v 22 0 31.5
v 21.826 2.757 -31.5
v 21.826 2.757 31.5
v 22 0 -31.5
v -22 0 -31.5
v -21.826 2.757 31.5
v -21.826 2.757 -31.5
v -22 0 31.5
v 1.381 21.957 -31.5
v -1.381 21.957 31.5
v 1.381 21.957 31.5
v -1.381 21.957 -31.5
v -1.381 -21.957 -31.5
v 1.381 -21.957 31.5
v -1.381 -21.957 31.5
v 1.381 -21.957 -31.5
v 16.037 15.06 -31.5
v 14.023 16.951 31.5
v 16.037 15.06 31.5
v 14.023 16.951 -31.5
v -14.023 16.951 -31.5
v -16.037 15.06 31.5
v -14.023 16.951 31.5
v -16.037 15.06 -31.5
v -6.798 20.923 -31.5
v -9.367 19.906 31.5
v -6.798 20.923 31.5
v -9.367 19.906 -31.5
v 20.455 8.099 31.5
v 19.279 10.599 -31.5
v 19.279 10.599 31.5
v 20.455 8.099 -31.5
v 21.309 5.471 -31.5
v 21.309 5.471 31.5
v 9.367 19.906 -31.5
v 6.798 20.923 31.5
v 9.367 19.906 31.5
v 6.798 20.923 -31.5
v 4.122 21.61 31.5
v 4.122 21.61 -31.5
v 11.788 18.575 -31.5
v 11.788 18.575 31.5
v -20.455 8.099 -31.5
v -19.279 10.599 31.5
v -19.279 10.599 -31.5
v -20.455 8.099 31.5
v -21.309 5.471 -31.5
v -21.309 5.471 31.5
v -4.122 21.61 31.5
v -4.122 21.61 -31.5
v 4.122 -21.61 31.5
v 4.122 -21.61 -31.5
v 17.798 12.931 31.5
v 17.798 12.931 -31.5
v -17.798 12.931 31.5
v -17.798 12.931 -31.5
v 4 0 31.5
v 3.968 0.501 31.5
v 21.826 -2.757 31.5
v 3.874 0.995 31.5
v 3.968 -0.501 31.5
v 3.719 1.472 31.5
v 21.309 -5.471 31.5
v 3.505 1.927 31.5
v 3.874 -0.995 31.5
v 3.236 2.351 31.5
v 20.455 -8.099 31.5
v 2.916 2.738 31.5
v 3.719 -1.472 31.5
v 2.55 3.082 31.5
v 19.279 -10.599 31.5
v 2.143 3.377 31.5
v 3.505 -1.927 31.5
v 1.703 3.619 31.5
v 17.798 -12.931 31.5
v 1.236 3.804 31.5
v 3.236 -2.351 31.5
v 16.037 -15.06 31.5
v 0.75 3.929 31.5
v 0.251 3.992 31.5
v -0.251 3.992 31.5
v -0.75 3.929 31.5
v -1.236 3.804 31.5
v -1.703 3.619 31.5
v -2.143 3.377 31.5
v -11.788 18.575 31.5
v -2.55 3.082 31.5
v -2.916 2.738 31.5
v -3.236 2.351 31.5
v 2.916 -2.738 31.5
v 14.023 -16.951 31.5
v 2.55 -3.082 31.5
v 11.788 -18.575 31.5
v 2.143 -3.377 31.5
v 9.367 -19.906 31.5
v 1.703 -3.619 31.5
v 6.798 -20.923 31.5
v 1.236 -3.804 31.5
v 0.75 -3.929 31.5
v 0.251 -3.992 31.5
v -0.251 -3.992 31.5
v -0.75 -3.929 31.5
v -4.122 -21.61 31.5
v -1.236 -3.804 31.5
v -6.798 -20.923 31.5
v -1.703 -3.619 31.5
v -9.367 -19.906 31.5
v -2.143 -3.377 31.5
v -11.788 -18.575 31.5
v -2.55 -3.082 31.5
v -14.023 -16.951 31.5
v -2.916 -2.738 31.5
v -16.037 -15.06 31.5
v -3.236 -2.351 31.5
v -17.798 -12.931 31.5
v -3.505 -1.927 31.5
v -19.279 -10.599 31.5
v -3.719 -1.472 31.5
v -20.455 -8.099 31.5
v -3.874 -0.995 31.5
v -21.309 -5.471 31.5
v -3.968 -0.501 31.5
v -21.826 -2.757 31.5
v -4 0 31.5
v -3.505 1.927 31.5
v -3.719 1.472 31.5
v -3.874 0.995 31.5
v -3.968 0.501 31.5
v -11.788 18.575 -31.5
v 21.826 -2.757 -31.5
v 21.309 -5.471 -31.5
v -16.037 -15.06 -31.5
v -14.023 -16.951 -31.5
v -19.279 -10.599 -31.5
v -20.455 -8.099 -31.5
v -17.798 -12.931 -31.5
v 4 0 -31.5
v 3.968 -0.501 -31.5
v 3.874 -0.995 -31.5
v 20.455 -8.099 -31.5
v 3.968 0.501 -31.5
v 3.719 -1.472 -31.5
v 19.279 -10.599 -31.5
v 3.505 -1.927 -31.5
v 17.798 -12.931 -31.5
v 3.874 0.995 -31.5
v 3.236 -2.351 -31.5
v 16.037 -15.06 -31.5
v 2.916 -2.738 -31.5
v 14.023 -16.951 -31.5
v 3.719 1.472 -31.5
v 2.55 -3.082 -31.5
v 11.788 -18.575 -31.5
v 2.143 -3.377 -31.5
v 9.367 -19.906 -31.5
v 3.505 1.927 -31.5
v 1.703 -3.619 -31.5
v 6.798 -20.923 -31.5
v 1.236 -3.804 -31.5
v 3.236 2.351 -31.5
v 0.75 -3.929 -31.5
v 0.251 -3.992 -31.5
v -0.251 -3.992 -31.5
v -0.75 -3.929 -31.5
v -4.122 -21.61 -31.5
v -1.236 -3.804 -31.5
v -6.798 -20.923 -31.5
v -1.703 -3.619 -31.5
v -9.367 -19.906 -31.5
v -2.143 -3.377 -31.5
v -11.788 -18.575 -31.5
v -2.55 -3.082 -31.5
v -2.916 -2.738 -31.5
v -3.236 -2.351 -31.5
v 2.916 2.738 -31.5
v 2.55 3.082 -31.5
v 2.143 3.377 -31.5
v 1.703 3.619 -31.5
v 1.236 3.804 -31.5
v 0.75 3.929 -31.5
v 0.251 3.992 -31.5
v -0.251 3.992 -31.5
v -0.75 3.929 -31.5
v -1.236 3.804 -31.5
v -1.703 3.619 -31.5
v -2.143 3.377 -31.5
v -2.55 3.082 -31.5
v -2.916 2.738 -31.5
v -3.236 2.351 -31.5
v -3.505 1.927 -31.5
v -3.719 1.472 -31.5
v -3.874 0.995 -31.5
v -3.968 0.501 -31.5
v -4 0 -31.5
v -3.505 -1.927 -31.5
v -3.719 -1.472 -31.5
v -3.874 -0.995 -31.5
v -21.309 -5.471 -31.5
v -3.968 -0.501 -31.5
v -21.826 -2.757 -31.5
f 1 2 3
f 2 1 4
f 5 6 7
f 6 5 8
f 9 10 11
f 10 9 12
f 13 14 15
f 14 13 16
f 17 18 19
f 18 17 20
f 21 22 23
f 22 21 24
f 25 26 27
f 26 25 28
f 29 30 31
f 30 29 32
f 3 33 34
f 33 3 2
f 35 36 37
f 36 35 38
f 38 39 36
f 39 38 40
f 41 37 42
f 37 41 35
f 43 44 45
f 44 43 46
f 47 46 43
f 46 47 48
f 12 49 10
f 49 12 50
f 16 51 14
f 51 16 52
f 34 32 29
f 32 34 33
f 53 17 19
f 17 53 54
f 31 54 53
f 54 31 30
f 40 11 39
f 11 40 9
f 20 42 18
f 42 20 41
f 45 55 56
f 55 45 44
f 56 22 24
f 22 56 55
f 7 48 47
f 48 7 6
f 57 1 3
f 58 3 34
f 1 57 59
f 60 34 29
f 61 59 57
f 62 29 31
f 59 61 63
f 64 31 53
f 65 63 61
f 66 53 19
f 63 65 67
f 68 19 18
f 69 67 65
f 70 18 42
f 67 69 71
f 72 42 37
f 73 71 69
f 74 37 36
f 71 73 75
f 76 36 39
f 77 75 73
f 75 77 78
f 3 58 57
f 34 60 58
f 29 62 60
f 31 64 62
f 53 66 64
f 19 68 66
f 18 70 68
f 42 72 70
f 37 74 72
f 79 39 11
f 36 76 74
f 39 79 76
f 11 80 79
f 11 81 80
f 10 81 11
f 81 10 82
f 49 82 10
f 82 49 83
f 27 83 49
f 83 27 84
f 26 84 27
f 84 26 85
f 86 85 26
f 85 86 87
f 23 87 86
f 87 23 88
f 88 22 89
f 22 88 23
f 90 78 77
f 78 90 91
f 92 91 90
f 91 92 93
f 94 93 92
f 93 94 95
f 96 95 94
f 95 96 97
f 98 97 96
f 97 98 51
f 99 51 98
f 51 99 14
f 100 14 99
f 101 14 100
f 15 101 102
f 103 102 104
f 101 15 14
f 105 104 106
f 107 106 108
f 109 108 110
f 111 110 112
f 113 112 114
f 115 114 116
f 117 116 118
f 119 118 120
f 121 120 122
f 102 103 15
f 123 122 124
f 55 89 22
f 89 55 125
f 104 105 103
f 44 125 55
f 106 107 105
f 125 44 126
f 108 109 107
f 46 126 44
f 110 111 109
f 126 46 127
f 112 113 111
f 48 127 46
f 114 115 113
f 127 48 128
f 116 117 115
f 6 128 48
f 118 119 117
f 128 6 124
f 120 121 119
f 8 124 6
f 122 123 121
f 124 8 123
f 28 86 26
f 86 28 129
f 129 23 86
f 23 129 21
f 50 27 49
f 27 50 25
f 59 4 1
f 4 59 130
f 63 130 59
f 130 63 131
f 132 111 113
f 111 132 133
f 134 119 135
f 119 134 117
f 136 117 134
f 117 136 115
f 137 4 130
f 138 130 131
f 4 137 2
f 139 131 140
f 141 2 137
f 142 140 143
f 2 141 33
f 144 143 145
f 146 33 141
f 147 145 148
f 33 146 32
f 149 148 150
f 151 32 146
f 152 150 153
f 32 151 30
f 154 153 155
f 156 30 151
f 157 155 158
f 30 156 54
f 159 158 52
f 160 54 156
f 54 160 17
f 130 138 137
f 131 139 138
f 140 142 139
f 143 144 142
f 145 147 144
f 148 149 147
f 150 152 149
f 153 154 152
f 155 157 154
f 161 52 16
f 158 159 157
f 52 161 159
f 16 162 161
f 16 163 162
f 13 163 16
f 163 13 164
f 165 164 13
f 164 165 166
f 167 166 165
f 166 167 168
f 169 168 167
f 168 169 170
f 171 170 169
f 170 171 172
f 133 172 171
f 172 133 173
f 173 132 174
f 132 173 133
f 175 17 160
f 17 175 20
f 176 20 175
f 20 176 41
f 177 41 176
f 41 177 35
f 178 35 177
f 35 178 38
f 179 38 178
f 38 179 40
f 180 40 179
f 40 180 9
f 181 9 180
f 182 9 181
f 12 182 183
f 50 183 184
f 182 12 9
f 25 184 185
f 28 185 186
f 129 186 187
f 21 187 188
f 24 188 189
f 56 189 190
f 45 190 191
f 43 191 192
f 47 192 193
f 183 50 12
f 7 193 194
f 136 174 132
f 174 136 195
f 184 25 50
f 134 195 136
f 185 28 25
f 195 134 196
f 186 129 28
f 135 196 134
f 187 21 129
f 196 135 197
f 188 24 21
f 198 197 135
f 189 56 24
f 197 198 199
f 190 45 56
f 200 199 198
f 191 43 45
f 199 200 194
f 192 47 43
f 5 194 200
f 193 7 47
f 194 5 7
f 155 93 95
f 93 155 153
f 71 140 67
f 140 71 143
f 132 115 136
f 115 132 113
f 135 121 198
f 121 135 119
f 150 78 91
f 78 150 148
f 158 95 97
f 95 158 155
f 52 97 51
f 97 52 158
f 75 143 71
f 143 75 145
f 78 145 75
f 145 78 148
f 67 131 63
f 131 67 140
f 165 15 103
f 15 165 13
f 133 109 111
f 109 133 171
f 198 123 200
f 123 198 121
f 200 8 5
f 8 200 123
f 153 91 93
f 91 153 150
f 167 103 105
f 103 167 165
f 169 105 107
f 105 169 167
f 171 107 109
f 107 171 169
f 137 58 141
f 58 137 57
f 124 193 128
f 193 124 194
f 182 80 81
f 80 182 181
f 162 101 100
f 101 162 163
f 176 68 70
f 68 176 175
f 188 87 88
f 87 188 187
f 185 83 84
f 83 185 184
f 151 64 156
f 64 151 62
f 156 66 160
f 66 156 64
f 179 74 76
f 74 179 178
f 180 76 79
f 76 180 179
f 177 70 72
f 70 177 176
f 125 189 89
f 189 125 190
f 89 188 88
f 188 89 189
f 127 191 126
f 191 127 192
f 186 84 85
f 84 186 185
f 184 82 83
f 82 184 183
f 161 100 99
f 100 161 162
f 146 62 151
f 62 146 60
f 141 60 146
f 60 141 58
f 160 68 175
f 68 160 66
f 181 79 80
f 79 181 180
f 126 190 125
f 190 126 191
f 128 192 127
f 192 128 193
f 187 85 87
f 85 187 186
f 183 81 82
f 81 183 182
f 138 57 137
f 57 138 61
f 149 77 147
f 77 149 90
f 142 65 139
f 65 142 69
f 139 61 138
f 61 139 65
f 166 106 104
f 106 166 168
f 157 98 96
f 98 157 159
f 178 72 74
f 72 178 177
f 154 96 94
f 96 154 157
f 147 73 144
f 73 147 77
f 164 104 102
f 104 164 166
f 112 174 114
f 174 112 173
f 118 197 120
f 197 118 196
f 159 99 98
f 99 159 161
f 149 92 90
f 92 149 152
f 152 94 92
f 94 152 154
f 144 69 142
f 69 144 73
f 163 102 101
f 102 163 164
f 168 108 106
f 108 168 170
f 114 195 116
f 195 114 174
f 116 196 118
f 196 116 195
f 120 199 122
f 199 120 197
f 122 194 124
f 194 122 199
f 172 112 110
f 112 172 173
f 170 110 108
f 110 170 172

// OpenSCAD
$fn = 50;


difference() {
	union() {
		translate(v = [0, 0, -31.5000000000]) {
			cylinder(h = 63, r = 22.0000000000);
		}
	}
	union() {
		translate(v = [0, 0, -100.0000000000]) {
			cylinder(h = 200, r = 4);
		}
	}
}
